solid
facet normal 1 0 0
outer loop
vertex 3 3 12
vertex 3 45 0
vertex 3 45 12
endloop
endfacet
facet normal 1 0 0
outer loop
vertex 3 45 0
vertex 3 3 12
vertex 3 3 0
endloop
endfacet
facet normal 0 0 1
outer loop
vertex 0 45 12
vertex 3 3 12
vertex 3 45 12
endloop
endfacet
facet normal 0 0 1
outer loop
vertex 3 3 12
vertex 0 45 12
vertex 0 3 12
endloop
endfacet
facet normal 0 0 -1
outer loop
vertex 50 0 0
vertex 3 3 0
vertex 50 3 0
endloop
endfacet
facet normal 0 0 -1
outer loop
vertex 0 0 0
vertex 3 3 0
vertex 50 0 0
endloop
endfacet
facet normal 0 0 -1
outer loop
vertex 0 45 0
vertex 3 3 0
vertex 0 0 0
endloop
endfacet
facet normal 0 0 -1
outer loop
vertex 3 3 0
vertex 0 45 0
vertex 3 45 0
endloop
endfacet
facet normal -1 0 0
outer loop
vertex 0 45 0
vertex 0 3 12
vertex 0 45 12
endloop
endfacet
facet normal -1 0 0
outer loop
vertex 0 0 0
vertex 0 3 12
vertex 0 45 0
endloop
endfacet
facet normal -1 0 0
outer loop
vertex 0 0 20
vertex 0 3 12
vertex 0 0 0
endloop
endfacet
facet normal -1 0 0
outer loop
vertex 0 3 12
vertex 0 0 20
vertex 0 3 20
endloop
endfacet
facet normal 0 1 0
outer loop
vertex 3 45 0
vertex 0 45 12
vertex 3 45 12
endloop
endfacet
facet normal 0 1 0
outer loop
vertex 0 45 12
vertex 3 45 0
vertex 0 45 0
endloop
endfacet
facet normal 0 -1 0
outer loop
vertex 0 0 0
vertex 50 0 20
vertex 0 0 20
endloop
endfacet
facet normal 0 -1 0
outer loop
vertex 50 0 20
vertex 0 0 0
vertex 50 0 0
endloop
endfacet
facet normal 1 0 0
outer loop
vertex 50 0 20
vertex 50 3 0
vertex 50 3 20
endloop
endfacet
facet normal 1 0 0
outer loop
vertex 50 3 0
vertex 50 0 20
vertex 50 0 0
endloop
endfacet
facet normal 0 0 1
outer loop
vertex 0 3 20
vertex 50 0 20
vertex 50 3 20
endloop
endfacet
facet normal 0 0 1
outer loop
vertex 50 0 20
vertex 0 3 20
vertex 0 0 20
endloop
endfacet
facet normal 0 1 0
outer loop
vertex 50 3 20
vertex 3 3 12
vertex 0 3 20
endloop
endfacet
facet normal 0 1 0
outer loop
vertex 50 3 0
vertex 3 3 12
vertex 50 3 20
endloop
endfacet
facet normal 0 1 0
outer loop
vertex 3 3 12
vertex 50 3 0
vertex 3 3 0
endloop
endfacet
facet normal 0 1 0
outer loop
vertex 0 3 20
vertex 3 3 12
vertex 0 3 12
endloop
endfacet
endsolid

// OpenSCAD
difference() {
union() {

    translate([0, 0, 0])
        cube([3, 45, 12]);
    translate([0, 0, 0])
        cube([50, 3, 20]);


}






}
